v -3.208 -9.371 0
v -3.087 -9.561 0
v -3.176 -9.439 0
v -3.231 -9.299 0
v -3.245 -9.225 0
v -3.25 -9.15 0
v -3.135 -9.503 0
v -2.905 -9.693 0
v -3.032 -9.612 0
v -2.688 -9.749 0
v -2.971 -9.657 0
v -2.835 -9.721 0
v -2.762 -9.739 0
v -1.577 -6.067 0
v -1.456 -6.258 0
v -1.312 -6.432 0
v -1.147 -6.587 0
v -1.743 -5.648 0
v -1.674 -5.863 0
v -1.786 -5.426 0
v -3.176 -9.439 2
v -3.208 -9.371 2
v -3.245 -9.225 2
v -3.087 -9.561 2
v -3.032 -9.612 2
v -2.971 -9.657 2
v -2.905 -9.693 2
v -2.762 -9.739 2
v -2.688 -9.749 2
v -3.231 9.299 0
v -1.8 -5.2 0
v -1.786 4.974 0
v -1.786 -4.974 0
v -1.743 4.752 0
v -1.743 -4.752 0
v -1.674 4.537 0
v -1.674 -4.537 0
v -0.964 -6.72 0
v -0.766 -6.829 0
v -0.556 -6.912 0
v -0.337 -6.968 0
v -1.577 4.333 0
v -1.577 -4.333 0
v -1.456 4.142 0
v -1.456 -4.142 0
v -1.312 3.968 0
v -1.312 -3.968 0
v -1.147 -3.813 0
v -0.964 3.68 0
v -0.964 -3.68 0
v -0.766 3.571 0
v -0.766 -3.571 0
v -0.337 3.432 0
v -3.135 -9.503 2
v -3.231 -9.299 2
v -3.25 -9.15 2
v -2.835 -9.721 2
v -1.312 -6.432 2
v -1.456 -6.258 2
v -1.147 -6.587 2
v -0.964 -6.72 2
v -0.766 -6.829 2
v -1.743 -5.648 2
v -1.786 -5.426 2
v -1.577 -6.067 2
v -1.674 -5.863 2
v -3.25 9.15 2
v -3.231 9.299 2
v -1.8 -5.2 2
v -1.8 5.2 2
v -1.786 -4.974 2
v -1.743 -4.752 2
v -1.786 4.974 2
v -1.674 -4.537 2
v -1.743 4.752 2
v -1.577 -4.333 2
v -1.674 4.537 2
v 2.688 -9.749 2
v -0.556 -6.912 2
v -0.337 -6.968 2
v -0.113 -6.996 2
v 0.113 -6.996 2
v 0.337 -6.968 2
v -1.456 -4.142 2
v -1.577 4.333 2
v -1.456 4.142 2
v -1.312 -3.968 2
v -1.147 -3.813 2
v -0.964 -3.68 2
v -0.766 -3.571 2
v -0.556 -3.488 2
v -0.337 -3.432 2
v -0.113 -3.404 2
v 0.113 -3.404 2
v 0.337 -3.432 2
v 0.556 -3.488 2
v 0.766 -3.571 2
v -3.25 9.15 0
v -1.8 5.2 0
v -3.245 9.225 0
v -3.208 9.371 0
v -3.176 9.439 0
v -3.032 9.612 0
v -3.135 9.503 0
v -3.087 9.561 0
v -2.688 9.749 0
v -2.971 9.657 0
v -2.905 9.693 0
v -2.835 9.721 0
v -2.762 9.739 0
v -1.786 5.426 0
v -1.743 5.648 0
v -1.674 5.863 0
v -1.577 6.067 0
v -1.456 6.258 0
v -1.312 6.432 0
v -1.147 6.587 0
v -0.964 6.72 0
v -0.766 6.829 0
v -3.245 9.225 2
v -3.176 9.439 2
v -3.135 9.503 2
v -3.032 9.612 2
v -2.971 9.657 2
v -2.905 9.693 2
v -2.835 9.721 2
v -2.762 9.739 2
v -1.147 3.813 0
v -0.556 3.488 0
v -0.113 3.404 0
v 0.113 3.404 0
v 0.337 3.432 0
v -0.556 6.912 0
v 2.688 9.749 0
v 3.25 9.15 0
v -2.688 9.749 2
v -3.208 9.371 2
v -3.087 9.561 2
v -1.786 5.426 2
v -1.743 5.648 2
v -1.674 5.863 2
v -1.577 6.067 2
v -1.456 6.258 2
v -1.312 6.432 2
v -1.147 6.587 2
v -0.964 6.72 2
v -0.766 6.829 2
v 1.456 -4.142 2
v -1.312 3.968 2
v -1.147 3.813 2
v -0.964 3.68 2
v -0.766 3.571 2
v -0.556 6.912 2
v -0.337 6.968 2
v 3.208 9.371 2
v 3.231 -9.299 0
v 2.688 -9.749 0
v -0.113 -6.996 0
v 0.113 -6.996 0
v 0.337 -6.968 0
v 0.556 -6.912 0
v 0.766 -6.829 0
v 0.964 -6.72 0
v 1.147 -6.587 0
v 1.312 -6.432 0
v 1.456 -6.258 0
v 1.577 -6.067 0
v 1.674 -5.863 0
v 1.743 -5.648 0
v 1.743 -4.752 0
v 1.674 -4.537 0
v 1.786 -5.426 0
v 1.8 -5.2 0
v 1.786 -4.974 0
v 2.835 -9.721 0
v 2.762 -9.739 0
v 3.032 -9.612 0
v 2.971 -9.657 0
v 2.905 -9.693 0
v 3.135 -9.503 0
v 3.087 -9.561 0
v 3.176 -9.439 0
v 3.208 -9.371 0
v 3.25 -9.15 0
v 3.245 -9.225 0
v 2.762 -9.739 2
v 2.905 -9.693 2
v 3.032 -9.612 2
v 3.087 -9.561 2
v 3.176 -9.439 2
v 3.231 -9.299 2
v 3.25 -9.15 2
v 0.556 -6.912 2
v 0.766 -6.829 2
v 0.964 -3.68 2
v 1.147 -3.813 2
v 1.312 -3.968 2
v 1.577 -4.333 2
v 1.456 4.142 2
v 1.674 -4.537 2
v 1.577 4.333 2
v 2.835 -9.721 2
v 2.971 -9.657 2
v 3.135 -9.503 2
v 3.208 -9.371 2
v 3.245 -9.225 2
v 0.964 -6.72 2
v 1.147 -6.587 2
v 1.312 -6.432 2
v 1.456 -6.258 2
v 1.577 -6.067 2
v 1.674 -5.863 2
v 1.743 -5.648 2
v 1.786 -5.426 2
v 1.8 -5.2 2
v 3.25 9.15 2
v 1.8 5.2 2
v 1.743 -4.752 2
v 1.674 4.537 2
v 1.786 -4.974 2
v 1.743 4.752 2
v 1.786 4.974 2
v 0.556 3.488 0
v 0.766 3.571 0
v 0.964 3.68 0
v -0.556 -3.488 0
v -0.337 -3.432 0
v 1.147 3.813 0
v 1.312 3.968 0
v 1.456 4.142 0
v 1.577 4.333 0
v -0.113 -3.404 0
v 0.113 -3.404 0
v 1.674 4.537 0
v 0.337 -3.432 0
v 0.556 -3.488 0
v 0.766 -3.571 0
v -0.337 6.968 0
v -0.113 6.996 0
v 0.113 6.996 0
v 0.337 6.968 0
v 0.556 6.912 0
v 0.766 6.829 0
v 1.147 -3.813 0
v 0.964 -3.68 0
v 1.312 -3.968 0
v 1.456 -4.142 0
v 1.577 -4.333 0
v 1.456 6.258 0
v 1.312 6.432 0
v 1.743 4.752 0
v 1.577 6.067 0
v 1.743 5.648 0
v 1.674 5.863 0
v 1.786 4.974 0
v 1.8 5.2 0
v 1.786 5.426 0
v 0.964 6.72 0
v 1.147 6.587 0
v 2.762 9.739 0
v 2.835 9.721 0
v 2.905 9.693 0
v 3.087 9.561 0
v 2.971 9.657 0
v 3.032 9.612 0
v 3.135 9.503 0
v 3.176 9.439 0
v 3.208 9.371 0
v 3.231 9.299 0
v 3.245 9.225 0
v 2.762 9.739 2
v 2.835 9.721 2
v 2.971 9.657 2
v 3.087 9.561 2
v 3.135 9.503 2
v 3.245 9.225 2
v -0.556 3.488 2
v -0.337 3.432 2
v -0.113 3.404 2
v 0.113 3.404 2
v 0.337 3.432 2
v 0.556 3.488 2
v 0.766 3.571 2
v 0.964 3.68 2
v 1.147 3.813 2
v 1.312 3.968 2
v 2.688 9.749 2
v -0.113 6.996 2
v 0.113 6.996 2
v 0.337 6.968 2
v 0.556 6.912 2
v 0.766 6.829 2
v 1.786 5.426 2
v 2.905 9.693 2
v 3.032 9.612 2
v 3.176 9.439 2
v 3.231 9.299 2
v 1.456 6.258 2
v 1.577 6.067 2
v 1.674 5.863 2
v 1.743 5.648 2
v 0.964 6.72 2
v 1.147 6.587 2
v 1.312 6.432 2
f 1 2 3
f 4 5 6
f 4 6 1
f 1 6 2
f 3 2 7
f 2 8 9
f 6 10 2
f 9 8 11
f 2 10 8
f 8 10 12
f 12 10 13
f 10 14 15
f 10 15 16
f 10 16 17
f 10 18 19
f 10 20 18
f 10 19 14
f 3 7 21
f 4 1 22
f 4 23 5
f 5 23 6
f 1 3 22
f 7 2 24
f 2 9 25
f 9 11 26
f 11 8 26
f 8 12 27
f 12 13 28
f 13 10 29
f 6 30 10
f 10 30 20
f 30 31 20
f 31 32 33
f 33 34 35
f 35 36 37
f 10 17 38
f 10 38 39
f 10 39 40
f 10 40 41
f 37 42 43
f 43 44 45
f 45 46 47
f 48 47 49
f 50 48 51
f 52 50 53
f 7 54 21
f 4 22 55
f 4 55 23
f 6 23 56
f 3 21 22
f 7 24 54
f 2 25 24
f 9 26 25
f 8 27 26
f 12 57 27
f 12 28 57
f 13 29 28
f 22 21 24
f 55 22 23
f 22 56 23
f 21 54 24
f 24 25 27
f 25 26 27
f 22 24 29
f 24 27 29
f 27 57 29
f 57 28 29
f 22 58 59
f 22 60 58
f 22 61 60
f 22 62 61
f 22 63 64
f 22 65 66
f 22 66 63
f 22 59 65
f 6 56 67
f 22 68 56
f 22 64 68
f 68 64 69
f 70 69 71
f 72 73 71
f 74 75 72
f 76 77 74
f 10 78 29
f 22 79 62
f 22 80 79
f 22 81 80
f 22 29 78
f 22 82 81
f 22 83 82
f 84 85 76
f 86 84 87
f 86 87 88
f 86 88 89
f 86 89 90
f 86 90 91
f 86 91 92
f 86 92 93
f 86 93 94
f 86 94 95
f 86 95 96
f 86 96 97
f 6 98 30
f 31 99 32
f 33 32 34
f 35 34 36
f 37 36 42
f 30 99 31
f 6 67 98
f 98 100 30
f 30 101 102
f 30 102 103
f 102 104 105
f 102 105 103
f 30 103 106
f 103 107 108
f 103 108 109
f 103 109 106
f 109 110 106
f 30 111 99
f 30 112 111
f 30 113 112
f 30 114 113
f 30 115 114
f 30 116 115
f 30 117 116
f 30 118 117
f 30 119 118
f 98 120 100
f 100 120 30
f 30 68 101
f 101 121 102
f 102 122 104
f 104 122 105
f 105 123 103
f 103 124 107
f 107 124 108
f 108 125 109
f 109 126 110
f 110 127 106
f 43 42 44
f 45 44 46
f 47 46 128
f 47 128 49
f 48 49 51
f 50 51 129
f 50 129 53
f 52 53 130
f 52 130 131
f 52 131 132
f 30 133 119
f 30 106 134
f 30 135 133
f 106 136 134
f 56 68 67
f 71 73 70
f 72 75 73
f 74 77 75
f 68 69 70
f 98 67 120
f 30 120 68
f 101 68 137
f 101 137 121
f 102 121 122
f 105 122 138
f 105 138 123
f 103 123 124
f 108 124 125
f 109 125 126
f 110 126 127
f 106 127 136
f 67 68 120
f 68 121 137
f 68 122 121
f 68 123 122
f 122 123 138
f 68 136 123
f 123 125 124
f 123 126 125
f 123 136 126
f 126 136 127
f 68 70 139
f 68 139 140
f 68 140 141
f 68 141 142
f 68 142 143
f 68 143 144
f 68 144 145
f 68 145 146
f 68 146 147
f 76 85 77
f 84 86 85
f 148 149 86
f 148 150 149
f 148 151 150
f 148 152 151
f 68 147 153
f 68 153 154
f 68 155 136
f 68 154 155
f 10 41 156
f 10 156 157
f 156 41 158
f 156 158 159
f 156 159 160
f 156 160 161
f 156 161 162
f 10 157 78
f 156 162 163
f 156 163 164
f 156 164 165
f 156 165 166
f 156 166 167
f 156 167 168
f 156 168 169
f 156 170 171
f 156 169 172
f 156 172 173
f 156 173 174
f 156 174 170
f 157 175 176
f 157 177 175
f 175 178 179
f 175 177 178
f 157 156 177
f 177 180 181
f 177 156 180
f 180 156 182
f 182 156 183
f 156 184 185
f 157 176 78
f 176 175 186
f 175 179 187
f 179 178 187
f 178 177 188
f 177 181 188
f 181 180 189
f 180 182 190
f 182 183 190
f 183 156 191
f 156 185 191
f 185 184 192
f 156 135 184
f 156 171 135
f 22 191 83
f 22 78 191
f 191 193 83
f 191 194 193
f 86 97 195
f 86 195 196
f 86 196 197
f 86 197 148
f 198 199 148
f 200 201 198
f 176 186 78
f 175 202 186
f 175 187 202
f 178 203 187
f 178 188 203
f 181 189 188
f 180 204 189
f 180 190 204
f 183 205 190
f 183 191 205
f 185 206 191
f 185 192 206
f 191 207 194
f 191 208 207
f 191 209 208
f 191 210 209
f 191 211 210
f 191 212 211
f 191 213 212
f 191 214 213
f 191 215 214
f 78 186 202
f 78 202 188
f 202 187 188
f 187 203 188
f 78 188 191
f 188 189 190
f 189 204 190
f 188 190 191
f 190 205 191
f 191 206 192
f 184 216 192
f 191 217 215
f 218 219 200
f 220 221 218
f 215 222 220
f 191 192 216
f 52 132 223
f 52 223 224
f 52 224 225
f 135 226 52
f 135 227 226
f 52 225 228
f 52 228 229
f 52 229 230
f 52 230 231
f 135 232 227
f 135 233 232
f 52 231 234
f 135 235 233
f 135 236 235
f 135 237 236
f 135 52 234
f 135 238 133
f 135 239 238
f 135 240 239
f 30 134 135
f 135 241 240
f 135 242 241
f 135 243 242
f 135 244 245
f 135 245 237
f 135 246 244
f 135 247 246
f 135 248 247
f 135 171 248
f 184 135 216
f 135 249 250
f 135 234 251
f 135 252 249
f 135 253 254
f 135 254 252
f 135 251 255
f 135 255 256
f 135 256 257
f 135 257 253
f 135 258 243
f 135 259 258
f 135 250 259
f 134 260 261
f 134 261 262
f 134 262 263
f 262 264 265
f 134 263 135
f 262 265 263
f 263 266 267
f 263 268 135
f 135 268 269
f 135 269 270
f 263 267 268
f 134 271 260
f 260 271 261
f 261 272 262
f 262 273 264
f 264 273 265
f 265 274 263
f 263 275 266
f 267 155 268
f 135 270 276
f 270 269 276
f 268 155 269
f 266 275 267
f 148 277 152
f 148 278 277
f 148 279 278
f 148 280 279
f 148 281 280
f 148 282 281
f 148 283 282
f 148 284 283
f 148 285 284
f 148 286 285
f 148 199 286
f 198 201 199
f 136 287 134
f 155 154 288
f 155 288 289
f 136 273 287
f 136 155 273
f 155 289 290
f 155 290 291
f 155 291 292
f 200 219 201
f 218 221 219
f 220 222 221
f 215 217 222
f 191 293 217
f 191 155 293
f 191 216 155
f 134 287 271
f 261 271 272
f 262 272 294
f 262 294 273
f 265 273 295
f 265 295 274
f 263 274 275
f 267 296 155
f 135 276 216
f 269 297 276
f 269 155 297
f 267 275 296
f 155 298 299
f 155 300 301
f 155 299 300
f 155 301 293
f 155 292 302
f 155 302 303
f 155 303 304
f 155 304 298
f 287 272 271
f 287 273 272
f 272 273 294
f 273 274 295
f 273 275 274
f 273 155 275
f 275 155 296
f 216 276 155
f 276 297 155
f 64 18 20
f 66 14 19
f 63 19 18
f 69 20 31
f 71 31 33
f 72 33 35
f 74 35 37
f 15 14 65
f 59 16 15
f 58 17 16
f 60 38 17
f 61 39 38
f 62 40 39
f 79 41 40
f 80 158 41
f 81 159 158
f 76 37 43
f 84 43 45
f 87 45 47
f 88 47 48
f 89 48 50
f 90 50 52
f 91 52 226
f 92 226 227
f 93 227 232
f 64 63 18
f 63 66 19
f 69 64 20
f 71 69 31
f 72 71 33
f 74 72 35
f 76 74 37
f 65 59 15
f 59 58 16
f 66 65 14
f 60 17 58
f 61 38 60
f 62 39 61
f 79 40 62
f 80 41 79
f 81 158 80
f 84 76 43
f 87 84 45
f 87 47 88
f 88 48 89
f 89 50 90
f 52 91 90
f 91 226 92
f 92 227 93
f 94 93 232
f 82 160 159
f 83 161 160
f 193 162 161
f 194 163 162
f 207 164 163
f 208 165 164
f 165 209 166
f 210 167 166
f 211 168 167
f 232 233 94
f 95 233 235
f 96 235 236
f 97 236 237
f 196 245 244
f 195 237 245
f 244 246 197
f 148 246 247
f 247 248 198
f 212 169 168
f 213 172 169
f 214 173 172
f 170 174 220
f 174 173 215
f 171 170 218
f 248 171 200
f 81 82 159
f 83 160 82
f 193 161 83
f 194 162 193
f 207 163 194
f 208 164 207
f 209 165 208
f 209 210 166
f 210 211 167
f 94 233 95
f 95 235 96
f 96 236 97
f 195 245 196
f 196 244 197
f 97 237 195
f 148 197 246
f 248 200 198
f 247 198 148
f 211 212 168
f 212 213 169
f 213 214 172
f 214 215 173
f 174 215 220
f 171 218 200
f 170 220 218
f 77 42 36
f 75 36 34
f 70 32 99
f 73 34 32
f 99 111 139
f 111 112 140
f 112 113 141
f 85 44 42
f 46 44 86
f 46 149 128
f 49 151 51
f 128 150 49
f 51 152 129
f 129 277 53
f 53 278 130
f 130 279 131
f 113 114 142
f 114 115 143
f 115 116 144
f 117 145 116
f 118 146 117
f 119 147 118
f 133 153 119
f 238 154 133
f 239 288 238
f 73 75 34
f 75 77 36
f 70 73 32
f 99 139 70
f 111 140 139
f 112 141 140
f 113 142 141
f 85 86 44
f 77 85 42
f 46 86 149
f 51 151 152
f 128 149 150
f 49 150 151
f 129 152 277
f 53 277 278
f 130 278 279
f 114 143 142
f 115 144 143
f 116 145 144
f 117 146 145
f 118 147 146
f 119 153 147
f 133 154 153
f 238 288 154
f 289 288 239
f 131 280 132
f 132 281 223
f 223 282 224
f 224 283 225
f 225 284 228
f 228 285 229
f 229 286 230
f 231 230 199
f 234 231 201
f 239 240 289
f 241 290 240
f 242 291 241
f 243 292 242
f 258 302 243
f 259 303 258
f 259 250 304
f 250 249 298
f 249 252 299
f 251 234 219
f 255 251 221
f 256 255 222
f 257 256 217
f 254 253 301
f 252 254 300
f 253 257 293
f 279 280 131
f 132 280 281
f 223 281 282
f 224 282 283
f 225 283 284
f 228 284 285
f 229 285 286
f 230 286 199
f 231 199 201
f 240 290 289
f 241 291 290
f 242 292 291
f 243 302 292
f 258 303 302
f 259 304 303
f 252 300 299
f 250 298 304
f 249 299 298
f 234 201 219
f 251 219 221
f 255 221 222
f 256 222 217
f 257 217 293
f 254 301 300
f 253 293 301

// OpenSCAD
$fn = 50;

difference() {
	union() {
		translate(v = [34.5, 0, 2]) {
			rotate(a = [0, 0, 0]) {
				difference() {
					union() {
						translate(v = [-34.5, 0, -2]) {
							hull() {
								translate(v = [-2.65, 9.15, 0]) {
									cylinder(h = 2, r = 0.6);
								}
								translate(v = [2.65, 9.15, 0]) {
									cylinder(h = 2, r = 0.6);
								}
								translate(v = [-2.65, -9.15, 0]) {
									cylinder(h = 2, r = 0.6);
								}
								translate(v = [2.65, -9.15, 0]) {
									cylinder(h = 2, r = 0.6);
								}
							}
						}
					}
					union() {
						translate(v = [-34.5, -5.2, -3]) {
							cylinder(h = 4, r = 1.8);
						}
						translate(v = [-34.5, 5.2, -3]) {
							cylinder(h = 4, r = 1.8);
						}
					}
				}
			}
		}
	}
	union();
}
